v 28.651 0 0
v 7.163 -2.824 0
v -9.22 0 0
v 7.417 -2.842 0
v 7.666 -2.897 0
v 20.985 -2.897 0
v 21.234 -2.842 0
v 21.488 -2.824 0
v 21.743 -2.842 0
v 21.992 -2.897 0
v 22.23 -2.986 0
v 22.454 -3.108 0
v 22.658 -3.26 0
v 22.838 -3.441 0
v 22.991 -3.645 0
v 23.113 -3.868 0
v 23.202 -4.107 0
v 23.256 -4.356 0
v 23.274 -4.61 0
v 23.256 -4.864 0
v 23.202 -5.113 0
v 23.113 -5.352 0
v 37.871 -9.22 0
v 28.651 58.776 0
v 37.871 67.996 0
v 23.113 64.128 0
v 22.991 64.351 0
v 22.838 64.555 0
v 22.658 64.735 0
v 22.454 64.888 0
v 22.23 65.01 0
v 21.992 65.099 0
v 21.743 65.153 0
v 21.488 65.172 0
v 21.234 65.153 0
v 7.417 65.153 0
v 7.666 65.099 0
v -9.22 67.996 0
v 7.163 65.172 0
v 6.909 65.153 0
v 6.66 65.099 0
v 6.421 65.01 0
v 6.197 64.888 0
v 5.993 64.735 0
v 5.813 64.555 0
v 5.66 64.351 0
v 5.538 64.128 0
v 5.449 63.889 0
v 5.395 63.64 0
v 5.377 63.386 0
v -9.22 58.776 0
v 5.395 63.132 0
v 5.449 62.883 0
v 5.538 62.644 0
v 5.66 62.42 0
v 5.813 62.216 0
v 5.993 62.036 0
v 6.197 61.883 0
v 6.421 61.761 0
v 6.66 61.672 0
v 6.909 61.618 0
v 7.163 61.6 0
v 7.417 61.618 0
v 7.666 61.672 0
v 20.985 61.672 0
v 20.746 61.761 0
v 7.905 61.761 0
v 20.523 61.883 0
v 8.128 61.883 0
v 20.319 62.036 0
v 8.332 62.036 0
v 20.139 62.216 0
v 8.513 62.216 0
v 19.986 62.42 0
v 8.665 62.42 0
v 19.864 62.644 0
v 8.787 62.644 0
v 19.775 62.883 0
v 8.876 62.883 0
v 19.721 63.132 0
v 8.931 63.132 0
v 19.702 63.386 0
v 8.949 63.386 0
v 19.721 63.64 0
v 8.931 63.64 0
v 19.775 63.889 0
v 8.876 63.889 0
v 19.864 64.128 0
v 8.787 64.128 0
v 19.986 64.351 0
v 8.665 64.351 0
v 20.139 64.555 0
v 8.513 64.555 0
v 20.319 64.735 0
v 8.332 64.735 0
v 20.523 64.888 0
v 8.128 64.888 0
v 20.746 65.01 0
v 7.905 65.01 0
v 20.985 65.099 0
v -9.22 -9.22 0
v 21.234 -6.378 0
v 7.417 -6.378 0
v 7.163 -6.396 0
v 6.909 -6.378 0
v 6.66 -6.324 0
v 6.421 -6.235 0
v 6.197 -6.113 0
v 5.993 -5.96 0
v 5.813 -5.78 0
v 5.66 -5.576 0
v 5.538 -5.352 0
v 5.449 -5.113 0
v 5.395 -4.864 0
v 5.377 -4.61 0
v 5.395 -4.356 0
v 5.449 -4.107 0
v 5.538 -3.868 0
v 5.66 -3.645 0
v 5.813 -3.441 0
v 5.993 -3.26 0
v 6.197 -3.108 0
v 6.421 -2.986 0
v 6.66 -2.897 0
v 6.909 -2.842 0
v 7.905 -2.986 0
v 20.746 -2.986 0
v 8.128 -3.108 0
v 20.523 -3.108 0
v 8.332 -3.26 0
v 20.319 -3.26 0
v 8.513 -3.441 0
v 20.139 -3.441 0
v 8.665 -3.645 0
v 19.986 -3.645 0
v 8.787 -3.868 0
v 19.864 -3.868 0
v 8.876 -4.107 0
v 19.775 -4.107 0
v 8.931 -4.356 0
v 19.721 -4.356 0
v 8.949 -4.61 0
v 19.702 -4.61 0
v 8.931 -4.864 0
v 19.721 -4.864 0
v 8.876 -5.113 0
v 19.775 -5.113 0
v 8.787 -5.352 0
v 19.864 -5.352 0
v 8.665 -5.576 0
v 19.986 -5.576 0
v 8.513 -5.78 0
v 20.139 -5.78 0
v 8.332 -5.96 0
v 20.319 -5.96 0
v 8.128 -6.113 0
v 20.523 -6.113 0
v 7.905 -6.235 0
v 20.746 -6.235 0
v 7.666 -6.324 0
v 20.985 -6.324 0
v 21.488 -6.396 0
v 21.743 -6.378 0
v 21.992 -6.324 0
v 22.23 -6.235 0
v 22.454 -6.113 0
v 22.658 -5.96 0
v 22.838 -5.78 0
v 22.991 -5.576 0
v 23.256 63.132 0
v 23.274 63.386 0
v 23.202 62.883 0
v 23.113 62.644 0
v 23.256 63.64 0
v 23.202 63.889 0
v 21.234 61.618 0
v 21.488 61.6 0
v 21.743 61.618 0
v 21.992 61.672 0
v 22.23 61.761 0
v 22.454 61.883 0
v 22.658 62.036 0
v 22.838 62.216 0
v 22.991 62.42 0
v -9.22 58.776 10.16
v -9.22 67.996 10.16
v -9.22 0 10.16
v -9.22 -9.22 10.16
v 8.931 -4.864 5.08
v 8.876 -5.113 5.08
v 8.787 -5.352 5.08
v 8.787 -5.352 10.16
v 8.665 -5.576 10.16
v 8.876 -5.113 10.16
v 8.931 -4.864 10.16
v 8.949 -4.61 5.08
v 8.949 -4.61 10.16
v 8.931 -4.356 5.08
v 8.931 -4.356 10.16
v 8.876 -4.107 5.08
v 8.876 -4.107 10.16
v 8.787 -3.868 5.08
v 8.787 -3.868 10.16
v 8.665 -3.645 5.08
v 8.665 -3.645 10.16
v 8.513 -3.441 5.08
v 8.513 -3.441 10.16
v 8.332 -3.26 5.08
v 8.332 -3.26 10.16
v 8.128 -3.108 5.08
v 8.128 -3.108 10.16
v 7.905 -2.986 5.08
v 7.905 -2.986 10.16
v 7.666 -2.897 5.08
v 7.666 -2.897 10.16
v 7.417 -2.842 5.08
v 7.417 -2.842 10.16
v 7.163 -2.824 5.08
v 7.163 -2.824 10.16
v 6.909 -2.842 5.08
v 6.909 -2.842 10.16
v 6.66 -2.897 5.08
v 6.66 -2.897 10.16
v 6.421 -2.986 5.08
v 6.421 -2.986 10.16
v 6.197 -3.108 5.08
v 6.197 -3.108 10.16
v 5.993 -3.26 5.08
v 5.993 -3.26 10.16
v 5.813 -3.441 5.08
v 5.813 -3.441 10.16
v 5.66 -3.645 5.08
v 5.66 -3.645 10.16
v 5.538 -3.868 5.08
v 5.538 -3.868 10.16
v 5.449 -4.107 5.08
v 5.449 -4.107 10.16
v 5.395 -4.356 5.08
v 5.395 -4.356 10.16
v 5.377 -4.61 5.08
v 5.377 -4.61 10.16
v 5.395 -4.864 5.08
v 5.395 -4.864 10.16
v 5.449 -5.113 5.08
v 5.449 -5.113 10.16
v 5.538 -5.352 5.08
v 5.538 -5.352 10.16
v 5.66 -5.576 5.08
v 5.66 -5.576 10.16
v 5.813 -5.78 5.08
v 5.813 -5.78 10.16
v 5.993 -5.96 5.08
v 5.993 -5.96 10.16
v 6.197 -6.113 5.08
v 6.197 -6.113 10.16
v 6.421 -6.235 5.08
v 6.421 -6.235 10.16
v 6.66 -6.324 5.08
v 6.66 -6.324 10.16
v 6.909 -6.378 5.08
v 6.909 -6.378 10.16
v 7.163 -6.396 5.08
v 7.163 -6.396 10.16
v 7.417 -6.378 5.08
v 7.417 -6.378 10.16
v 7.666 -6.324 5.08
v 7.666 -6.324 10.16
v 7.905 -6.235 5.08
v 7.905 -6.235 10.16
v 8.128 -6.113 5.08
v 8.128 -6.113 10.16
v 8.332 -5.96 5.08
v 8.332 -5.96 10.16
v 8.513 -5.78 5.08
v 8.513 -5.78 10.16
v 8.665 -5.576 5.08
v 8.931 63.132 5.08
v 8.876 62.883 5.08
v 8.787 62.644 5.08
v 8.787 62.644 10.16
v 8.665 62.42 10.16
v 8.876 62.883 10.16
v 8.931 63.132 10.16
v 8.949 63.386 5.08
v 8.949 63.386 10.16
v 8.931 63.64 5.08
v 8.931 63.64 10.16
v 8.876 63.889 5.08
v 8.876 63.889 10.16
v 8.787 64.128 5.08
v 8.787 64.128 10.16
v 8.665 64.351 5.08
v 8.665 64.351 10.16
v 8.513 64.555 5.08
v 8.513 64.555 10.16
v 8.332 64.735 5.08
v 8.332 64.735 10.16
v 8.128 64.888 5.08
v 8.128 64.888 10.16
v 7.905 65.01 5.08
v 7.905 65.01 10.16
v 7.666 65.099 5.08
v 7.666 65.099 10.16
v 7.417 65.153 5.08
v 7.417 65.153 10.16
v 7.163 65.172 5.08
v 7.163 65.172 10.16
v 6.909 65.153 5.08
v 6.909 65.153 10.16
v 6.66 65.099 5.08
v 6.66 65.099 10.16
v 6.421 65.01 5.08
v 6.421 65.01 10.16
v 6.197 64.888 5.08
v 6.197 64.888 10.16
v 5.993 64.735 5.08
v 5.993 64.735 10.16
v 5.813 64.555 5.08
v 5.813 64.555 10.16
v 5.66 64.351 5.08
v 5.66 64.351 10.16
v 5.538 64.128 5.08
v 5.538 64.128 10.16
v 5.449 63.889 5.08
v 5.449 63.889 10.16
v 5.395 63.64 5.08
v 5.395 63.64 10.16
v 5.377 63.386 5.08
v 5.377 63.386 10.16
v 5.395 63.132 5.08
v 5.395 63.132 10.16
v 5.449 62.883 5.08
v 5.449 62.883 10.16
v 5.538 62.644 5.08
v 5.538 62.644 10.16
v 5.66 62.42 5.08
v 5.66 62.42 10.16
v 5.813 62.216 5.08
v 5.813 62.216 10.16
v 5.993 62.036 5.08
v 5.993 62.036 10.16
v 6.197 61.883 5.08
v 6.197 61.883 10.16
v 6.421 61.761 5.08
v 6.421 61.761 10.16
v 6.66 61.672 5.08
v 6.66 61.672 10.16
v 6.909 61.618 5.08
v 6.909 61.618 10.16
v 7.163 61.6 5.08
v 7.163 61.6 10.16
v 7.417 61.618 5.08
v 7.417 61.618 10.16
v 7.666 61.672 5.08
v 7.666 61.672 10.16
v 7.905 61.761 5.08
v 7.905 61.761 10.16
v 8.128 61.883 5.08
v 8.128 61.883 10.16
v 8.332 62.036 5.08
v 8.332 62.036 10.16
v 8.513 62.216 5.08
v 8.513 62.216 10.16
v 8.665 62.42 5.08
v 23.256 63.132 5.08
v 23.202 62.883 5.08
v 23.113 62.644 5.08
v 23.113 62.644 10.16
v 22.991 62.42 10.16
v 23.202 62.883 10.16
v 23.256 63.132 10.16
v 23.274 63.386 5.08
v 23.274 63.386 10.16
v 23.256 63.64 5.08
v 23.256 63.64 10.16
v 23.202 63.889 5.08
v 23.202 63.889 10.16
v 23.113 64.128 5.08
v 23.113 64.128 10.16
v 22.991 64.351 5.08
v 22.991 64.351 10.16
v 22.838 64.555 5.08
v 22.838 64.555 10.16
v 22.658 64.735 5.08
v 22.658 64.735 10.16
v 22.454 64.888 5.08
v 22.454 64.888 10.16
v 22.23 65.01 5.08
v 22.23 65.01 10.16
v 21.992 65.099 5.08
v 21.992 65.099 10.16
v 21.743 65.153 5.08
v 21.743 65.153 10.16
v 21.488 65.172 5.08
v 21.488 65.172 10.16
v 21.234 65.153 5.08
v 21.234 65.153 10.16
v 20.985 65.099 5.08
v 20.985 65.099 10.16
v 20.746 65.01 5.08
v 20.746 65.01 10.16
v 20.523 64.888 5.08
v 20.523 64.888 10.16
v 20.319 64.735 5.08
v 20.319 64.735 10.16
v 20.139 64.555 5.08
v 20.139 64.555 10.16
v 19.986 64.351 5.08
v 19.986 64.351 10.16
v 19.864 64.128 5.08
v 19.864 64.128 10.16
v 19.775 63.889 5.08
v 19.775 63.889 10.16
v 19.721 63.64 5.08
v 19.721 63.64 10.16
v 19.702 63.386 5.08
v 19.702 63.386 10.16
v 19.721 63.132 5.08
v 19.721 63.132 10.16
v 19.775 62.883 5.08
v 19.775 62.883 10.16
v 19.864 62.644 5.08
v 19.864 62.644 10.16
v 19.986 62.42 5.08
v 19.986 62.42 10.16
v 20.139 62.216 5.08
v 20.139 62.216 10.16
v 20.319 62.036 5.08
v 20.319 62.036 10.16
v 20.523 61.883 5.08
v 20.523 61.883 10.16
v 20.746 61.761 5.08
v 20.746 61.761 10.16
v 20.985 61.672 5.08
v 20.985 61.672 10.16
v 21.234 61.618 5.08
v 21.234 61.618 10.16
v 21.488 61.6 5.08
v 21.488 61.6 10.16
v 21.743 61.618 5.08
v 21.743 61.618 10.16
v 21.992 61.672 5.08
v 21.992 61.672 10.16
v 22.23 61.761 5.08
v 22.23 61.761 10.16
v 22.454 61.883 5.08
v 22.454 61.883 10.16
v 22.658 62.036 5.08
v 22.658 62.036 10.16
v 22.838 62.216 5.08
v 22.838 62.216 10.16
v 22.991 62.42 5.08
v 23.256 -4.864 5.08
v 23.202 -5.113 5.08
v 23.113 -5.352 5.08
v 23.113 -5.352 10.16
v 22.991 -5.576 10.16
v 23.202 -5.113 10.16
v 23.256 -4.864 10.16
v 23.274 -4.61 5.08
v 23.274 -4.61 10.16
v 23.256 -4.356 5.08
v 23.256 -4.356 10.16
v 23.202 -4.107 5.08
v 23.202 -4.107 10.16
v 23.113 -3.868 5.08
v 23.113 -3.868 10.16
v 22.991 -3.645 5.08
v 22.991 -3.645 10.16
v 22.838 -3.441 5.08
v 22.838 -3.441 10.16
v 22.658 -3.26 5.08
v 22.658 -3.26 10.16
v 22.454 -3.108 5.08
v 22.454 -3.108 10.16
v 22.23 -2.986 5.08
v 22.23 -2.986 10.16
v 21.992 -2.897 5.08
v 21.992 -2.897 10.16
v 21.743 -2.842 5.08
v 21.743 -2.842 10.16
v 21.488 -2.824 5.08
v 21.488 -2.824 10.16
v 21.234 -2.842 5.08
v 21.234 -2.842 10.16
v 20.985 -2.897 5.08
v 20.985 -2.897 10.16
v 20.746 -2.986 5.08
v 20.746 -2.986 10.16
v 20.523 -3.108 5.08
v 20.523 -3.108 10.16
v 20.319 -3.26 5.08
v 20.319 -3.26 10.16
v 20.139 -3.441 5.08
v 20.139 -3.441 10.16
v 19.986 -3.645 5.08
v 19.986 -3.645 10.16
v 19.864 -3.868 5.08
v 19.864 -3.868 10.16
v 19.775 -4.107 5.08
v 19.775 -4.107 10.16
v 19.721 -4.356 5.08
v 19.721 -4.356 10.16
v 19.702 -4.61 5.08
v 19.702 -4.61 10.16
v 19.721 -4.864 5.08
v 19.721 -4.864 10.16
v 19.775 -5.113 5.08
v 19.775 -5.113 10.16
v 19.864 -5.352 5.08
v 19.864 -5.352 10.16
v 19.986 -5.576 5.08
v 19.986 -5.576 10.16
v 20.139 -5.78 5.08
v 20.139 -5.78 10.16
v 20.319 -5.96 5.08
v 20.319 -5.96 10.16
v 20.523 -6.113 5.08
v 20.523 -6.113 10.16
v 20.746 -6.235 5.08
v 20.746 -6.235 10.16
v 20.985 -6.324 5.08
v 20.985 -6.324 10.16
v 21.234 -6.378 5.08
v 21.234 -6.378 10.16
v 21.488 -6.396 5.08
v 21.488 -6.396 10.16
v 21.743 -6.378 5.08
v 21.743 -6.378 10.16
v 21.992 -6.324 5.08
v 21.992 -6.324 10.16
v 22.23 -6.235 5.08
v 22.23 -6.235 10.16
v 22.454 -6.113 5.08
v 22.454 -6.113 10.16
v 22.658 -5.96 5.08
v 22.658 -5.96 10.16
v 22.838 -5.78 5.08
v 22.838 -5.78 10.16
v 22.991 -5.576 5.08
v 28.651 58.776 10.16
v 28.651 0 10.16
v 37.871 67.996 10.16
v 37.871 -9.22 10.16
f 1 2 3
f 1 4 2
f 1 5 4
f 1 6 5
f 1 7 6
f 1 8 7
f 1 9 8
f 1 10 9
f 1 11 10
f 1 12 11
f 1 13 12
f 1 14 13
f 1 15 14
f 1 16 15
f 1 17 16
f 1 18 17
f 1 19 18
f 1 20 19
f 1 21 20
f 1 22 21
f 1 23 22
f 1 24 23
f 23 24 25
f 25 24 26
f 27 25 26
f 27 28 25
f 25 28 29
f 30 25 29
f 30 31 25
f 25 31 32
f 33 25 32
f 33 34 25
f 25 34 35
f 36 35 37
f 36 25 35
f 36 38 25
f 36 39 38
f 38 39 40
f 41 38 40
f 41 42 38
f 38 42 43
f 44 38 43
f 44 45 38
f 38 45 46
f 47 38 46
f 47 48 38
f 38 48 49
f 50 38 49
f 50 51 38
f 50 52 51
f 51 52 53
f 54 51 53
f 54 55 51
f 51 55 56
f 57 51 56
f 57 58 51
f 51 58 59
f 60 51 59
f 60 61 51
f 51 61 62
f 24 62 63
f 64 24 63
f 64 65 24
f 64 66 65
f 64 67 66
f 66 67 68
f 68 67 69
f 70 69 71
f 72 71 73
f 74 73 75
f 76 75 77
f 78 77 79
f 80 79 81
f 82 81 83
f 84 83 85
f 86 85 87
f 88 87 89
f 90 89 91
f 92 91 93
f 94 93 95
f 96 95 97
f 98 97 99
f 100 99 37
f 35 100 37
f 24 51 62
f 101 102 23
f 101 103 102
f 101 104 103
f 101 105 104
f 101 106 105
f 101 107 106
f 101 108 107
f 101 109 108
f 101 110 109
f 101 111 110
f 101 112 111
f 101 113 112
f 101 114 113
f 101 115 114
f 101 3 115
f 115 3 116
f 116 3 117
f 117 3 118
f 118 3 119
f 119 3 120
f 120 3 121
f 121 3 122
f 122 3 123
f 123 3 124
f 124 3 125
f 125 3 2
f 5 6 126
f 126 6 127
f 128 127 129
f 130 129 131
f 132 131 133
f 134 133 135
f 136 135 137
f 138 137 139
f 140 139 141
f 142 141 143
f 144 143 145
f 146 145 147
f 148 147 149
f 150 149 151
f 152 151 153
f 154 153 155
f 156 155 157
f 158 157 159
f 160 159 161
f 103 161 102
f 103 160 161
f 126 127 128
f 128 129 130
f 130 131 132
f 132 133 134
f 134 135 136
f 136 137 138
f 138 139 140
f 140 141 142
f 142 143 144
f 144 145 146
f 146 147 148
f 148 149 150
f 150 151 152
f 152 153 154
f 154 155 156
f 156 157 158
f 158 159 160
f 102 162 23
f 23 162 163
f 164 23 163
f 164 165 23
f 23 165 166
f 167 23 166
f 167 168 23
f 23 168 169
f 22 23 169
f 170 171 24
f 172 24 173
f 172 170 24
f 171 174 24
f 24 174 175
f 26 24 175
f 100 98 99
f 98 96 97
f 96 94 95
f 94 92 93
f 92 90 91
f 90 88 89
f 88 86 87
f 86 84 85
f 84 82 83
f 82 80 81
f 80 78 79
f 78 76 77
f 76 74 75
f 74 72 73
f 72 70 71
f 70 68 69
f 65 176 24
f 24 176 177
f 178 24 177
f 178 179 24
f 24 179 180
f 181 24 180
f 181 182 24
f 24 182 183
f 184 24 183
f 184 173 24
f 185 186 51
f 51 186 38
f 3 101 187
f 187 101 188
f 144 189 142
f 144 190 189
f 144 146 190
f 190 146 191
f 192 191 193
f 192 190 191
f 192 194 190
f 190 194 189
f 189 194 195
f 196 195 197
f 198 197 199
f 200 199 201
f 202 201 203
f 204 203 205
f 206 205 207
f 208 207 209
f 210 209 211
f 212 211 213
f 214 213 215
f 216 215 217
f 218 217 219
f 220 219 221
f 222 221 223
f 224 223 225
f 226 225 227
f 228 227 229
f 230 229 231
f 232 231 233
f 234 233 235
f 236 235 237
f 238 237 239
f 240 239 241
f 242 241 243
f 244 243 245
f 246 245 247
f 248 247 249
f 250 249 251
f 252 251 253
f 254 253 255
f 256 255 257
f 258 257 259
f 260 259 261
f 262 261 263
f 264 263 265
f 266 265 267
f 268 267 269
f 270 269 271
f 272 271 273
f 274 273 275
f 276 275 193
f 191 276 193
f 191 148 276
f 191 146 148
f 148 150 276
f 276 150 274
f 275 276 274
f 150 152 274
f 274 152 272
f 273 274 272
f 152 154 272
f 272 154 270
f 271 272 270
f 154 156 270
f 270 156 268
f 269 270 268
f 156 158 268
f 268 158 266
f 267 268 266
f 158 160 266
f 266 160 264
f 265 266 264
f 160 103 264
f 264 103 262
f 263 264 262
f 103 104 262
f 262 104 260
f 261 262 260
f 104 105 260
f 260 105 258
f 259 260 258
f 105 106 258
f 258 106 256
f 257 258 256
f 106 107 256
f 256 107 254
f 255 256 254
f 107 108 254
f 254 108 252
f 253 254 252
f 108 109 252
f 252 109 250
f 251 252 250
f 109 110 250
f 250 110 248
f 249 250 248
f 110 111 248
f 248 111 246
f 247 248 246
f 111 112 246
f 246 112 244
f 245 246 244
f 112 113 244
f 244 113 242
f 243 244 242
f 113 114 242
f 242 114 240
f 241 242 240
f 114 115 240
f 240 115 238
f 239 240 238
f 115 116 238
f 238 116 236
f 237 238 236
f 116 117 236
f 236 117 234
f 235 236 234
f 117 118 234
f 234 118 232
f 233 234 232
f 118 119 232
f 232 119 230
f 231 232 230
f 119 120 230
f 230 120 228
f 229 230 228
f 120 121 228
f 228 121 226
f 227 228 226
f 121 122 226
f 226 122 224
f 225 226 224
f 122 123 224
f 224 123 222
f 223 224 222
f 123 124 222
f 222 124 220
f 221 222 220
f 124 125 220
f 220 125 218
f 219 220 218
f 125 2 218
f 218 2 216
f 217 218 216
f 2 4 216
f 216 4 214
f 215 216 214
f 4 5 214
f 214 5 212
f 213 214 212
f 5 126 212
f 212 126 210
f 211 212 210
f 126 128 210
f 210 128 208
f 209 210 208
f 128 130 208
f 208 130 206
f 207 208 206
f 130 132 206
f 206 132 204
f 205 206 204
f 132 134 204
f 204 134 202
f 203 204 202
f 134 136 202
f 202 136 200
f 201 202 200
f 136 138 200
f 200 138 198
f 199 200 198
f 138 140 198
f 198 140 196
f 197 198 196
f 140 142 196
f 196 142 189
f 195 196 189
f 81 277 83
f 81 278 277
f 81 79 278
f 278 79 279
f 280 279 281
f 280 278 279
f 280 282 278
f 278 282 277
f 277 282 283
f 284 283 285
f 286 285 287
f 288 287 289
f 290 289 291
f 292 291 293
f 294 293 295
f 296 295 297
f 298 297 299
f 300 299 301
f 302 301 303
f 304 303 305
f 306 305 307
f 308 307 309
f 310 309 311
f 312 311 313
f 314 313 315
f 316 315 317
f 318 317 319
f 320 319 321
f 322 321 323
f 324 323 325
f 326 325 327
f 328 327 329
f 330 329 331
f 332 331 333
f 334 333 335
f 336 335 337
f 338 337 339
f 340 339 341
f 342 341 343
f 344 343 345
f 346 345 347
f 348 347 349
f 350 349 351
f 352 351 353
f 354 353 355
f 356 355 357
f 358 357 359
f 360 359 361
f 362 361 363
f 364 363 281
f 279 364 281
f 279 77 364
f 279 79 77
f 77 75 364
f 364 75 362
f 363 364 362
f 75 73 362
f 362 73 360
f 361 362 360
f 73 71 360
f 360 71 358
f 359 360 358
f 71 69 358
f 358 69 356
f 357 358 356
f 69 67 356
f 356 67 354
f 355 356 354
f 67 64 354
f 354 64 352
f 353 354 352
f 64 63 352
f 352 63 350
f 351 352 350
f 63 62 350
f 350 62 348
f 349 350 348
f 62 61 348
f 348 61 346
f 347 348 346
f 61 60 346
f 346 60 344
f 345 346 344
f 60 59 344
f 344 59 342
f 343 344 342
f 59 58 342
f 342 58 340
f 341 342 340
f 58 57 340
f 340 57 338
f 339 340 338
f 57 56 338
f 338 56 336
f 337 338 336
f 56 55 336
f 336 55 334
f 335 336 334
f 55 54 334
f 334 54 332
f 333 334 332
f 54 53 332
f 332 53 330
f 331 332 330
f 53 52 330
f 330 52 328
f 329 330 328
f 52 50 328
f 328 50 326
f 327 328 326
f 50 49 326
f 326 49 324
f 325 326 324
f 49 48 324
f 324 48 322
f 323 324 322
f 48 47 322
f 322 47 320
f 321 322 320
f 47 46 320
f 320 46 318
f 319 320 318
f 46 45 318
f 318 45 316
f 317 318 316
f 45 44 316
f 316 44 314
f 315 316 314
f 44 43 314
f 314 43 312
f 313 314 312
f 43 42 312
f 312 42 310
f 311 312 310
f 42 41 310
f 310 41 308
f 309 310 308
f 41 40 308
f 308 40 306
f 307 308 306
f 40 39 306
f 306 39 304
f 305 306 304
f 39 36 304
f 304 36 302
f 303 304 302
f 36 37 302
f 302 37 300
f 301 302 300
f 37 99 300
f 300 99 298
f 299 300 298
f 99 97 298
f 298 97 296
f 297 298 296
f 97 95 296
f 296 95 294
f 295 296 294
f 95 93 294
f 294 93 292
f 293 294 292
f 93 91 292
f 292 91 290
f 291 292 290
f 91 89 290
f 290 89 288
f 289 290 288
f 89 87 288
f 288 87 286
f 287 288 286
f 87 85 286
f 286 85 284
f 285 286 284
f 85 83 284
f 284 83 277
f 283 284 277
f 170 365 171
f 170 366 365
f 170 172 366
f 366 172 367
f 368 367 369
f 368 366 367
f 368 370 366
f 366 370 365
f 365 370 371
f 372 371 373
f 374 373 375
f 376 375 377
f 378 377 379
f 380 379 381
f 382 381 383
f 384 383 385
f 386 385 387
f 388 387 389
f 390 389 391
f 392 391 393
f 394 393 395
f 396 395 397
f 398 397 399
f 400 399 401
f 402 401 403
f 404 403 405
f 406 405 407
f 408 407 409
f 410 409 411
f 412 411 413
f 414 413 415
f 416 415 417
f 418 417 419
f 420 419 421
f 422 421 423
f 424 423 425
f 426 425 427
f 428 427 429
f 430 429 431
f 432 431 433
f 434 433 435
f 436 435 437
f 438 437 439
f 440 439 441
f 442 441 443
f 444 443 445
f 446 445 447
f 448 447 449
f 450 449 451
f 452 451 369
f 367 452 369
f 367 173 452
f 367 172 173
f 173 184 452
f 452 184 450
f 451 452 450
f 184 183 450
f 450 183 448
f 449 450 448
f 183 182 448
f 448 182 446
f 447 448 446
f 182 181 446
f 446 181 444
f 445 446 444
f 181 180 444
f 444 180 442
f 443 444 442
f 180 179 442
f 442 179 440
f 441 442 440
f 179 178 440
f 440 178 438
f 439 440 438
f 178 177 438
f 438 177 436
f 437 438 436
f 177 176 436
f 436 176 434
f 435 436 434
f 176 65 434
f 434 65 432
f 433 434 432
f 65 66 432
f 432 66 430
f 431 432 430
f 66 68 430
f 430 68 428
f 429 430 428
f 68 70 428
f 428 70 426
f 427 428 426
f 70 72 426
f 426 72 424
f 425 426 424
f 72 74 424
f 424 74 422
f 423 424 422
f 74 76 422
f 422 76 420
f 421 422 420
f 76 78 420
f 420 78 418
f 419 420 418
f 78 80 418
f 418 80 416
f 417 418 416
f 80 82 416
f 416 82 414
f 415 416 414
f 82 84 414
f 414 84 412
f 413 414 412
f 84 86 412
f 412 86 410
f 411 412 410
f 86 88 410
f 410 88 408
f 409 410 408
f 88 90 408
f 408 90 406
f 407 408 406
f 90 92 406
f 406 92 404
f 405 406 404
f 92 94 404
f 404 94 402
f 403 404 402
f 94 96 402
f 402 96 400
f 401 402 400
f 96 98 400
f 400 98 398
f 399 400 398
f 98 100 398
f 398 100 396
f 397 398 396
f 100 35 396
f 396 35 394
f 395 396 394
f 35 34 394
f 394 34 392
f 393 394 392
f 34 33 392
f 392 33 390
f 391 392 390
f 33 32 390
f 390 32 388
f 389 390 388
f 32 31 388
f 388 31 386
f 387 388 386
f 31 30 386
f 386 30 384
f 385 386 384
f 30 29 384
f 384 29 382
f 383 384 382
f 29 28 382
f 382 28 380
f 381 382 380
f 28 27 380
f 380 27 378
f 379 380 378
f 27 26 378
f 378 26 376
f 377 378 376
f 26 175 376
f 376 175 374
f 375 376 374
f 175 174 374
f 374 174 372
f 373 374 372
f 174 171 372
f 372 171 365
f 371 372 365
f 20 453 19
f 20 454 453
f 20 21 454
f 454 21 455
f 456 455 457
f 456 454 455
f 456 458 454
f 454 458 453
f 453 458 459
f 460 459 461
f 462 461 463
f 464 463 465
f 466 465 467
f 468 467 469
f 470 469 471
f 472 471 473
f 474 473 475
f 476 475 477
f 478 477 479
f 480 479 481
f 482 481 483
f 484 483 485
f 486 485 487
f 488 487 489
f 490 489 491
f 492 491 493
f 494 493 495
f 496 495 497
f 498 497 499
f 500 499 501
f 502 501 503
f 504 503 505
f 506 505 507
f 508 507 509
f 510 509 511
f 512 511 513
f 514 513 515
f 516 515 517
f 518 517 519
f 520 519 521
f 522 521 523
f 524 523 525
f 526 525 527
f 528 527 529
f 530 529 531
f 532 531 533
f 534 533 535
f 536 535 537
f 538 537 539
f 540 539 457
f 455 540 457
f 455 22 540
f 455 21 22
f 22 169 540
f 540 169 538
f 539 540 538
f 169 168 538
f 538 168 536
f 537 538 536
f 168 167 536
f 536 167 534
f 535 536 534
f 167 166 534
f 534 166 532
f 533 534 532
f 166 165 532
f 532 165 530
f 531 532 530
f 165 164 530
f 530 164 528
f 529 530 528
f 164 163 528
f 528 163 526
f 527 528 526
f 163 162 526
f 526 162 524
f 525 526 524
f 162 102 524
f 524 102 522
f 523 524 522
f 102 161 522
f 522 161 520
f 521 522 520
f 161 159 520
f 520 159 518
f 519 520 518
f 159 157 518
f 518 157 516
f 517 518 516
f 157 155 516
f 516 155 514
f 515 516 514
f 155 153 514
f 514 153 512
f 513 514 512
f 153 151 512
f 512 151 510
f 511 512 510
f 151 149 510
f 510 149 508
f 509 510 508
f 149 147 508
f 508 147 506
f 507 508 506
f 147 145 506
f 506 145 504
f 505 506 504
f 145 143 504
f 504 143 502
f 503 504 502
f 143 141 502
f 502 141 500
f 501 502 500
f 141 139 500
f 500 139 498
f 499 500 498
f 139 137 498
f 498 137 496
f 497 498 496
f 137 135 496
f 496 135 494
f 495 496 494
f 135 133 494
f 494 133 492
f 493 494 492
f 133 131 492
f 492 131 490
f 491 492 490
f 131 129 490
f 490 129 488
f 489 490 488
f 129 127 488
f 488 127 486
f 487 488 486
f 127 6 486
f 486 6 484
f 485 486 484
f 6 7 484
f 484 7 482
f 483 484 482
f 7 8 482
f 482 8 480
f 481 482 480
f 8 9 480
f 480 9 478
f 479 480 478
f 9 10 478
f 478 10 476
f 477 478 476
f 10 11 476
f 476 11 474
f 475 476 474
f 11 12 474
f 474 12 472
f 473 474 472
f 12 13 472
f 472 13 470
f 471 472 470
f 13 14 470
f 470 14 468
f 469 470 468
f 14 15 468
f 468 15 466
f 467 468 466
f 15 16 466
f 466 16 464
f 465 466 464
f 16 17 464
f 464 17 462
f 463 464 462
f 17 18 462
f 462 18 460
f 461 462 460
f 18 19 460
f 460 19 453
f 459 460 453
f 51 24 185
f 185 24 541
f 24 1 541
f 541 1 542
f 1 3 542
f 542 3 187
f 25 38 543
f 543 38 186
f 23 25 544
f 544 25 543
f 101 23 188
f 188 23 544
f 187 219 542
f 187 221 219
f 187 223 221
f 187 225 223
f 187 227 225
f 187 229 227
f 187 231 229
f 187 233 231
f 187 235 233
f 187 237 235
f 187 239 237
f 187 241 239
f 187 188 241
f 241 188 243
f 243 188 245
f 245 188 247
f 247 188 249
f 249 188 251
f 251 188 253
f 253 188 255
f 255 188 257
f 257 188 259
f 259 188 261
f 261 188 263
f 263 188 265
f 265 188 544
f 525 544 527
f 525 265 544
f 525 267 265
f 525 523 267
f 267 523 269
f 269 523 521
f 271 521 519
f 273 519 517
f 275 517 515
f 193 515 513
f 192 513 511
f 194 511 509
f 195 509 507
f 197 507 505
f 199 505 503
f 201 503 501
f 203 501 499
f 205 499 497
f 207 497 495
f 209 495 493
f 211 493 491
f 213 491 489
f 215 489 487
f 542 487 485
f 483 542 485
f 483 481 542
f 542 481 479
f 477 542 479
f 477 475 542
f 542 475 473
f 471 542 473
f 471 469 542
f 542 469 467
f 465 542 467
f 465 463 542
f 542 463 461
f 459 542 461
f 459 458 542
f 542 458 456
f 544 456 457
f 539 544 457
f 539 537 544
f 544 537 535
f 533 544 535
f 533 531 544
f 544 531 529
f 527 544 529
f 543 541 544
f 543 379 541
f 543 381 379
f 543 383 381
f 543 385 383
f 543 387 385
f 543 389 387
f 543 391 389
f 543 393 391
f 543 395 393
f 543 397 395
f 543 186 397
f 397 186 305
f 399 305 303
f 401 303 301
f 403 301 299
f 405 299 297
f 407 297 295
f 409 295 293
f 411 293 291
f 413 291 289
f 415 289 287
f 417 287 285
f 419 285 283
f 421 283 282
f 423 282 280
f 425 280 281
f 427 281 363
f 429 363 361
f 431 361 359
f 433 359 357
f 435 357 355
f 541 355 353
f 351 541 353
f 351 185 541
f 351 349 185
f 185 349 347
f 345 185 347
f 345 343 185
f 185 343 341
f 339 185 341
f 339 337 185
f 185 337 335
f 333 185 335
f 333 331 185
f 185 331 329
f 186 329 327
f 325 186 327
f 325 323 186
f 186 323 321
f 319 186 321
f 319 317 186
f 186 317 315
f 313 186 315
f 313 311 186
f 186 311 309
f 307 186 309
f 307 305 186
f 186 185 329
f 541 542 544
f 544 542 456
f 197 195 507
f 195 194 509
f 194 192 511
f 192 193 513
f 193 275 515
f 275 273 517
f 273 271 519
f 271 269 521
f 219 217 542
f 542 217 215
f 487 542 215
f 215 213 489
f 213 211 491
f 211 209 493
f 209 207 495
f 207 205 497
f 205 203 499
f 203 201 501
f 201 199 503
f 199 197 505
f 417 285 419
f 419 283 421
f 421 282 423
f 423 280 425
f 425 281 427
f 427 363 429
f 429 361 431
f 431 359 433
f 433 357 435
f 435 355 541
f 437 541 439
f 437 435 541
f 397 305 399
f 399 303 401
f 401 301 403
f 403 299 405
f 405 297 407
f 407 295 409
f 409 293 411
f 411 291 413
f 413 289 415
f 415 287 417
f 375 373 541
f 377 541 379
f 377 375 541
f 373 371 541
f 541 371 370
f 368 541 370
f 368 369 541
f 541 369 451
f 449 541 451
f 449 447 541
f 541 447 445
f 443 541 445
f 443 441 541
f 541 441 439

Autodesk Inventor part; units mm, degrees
ref_plane "YZ Plane" through (0, 0, 0) normal (1, 0, 0) x (0, 1, 0)
ref_plane "XZ Plane" through (0, 0, 0) normal (0, 1, 0) x (-1, 0, 0)
ref_plane "XY Plane" through (0, 0, 0) normal (0, 0, 1) x (1, 0, 0)
sketch "Sketch1" plane through (0, 0, 0) normal (0, 0, 1) x (1, 0, 0)
  line L0 (0, 0) -> (0, 58.7756)
  line L1 (0, 58.7756) -> (28.6512, 58.7756)
  line L2 (28.6512, 58.7756) -> (28.6512, 0)
  line L3 (28.6512, 0) -> (0, 0)
  line L4 (-9.2202, 67.9958) -> (-9.2202, -9.2202)
  line L5 (-9.2202, -9.2202) -> (37.8714, -9.2202)
  line L6 (37.8714, -9.2202) -> (37.8714, 67.9958)
  line L7 (37.8714, 67.9958) -> (-9.2202, 67.9958)
  dimension "d0" = 28.6512
  dimension "d1" = 58.7756
  dimension "d2" = 9.2202
extrude "Extrusion1" add sketch "Sketch1" along normal blind 10.16
sketch "Sketch2" plane through (0, 0, 10.16) normal (0, 0, 1) x (1, 0, 0)
  line L0 (0, 58.7756) -> (28.6512, 58.7756) projected
  line L1 (28.6512, 58.7756) -> (28.6512, 0) projected
  line L2 (28.6512, 0) -> (0, 0) projected
  line L3 (0, 0) -> (0, 58.7756) projected
  line L4 (-9.2202, 67.9958) -> (-9.2202, -9.2202) projected
  line L5 (-9.2202, -9.2202) -> (37.8714, -9.2202) projected
  line L6 (37.8714, -9.2202) -> (37.8714, 67.9958) projected
  line L7 (37.8714, 67.9958) -> (-9.2202, 67.9958) projected
  line L8 (14.3256, 67.9958) -> (14.3256, 58.7756) construction
  line L9 (0, 58.7756) -> (28.6512, 58.7756) construction
  line L10 (14.3256, 63.3857) -> (28.6512, 63.3857) construction
  line L11 (14.3256, 63.3857) -> (0, 63.3857) construction
  circle A0 centre (7.1628, 63.3857) radius 1.7859
  circle A1 centre (21.4884, 63.3857) radius 1.7859
  line L12 (14.3256, 0) -> (14.3256, -9.2202) construction
  line L13 (-9.2202, -9.2202) -> (37.8714, -9.2202) construction
  line L14 (14.3256, -4.6101) -> (0, -4.6101) construction
  line L15 (14.3256, -4.6101) -> (28.6512, -4.6101) construction
  circle A2 centre (7.1628, -4.6101) radius 1.7859
  circle A3 centre (21.4884, -4.6101) radius 1.7859
  dimension "d5" = 3.5719
  dimension "d6" = 3.5719
  dimension "d7" = 3.5719
  dimension "d8" = 3.5719
extrude "Extrusion2" cut sketch "Sketch2" against normal through all contours A0 | A1 | A2 | A3
sketch "Sketch3" plane through (0, 0, 10.16) normal (0, 0, 1) x (1, 0, 0)
  circle A0 centre (7.1628, -4.6101) radius 1.7859 projected
  circle A1 centre (7.1628, 63.3857) radius 1.7859 projected
  circle A2 centre (21.4884, 63.3857) radius 1.7859 projected
  circle A3 centre (21.4884, -4.6101) radius 1.7859 projected
  line L0 (0, 58.7756) -> (28.6512, 58.7756) projected
  line L1 (28.6512, 58.7756) -> (28.6512, 0) projected
  line L2 (28.6512, 0) -> (0, 0) projected
  line L3 (0, 0) -> (0, 58.7756) projected
  line L4 (-9.2202, 67.9958) -> (-9.2202, -9.2202) projected
  line L5 (-9.2202, -9.2202) -> (37.8714, -9.2202) projected
  line L6 (37.8714, -9.2202) -> (37.8714, 67.9958) projected
  line L7 (37.8714, 67.9958) -> (-9.2202, 67.9958) projected
  line L8 (-9.2202, 67.9958) -> (-9.2202, -9.2202) projected
  line L9 (0, 58.7756) -> (-9.2202, 58.7756)
  line L10 (-9.2202, 58.7756) -> (-9.2202, 0)
  line L11 (-9.2202, 0) -> (0, 0)
  line L12 (0, 0) -> (0, 58.7756)
extrude "Extrusion3" cut sketch "Sketch3" against normal through all contours L3 L11 L4 L9
properties part number "New Flipper"
